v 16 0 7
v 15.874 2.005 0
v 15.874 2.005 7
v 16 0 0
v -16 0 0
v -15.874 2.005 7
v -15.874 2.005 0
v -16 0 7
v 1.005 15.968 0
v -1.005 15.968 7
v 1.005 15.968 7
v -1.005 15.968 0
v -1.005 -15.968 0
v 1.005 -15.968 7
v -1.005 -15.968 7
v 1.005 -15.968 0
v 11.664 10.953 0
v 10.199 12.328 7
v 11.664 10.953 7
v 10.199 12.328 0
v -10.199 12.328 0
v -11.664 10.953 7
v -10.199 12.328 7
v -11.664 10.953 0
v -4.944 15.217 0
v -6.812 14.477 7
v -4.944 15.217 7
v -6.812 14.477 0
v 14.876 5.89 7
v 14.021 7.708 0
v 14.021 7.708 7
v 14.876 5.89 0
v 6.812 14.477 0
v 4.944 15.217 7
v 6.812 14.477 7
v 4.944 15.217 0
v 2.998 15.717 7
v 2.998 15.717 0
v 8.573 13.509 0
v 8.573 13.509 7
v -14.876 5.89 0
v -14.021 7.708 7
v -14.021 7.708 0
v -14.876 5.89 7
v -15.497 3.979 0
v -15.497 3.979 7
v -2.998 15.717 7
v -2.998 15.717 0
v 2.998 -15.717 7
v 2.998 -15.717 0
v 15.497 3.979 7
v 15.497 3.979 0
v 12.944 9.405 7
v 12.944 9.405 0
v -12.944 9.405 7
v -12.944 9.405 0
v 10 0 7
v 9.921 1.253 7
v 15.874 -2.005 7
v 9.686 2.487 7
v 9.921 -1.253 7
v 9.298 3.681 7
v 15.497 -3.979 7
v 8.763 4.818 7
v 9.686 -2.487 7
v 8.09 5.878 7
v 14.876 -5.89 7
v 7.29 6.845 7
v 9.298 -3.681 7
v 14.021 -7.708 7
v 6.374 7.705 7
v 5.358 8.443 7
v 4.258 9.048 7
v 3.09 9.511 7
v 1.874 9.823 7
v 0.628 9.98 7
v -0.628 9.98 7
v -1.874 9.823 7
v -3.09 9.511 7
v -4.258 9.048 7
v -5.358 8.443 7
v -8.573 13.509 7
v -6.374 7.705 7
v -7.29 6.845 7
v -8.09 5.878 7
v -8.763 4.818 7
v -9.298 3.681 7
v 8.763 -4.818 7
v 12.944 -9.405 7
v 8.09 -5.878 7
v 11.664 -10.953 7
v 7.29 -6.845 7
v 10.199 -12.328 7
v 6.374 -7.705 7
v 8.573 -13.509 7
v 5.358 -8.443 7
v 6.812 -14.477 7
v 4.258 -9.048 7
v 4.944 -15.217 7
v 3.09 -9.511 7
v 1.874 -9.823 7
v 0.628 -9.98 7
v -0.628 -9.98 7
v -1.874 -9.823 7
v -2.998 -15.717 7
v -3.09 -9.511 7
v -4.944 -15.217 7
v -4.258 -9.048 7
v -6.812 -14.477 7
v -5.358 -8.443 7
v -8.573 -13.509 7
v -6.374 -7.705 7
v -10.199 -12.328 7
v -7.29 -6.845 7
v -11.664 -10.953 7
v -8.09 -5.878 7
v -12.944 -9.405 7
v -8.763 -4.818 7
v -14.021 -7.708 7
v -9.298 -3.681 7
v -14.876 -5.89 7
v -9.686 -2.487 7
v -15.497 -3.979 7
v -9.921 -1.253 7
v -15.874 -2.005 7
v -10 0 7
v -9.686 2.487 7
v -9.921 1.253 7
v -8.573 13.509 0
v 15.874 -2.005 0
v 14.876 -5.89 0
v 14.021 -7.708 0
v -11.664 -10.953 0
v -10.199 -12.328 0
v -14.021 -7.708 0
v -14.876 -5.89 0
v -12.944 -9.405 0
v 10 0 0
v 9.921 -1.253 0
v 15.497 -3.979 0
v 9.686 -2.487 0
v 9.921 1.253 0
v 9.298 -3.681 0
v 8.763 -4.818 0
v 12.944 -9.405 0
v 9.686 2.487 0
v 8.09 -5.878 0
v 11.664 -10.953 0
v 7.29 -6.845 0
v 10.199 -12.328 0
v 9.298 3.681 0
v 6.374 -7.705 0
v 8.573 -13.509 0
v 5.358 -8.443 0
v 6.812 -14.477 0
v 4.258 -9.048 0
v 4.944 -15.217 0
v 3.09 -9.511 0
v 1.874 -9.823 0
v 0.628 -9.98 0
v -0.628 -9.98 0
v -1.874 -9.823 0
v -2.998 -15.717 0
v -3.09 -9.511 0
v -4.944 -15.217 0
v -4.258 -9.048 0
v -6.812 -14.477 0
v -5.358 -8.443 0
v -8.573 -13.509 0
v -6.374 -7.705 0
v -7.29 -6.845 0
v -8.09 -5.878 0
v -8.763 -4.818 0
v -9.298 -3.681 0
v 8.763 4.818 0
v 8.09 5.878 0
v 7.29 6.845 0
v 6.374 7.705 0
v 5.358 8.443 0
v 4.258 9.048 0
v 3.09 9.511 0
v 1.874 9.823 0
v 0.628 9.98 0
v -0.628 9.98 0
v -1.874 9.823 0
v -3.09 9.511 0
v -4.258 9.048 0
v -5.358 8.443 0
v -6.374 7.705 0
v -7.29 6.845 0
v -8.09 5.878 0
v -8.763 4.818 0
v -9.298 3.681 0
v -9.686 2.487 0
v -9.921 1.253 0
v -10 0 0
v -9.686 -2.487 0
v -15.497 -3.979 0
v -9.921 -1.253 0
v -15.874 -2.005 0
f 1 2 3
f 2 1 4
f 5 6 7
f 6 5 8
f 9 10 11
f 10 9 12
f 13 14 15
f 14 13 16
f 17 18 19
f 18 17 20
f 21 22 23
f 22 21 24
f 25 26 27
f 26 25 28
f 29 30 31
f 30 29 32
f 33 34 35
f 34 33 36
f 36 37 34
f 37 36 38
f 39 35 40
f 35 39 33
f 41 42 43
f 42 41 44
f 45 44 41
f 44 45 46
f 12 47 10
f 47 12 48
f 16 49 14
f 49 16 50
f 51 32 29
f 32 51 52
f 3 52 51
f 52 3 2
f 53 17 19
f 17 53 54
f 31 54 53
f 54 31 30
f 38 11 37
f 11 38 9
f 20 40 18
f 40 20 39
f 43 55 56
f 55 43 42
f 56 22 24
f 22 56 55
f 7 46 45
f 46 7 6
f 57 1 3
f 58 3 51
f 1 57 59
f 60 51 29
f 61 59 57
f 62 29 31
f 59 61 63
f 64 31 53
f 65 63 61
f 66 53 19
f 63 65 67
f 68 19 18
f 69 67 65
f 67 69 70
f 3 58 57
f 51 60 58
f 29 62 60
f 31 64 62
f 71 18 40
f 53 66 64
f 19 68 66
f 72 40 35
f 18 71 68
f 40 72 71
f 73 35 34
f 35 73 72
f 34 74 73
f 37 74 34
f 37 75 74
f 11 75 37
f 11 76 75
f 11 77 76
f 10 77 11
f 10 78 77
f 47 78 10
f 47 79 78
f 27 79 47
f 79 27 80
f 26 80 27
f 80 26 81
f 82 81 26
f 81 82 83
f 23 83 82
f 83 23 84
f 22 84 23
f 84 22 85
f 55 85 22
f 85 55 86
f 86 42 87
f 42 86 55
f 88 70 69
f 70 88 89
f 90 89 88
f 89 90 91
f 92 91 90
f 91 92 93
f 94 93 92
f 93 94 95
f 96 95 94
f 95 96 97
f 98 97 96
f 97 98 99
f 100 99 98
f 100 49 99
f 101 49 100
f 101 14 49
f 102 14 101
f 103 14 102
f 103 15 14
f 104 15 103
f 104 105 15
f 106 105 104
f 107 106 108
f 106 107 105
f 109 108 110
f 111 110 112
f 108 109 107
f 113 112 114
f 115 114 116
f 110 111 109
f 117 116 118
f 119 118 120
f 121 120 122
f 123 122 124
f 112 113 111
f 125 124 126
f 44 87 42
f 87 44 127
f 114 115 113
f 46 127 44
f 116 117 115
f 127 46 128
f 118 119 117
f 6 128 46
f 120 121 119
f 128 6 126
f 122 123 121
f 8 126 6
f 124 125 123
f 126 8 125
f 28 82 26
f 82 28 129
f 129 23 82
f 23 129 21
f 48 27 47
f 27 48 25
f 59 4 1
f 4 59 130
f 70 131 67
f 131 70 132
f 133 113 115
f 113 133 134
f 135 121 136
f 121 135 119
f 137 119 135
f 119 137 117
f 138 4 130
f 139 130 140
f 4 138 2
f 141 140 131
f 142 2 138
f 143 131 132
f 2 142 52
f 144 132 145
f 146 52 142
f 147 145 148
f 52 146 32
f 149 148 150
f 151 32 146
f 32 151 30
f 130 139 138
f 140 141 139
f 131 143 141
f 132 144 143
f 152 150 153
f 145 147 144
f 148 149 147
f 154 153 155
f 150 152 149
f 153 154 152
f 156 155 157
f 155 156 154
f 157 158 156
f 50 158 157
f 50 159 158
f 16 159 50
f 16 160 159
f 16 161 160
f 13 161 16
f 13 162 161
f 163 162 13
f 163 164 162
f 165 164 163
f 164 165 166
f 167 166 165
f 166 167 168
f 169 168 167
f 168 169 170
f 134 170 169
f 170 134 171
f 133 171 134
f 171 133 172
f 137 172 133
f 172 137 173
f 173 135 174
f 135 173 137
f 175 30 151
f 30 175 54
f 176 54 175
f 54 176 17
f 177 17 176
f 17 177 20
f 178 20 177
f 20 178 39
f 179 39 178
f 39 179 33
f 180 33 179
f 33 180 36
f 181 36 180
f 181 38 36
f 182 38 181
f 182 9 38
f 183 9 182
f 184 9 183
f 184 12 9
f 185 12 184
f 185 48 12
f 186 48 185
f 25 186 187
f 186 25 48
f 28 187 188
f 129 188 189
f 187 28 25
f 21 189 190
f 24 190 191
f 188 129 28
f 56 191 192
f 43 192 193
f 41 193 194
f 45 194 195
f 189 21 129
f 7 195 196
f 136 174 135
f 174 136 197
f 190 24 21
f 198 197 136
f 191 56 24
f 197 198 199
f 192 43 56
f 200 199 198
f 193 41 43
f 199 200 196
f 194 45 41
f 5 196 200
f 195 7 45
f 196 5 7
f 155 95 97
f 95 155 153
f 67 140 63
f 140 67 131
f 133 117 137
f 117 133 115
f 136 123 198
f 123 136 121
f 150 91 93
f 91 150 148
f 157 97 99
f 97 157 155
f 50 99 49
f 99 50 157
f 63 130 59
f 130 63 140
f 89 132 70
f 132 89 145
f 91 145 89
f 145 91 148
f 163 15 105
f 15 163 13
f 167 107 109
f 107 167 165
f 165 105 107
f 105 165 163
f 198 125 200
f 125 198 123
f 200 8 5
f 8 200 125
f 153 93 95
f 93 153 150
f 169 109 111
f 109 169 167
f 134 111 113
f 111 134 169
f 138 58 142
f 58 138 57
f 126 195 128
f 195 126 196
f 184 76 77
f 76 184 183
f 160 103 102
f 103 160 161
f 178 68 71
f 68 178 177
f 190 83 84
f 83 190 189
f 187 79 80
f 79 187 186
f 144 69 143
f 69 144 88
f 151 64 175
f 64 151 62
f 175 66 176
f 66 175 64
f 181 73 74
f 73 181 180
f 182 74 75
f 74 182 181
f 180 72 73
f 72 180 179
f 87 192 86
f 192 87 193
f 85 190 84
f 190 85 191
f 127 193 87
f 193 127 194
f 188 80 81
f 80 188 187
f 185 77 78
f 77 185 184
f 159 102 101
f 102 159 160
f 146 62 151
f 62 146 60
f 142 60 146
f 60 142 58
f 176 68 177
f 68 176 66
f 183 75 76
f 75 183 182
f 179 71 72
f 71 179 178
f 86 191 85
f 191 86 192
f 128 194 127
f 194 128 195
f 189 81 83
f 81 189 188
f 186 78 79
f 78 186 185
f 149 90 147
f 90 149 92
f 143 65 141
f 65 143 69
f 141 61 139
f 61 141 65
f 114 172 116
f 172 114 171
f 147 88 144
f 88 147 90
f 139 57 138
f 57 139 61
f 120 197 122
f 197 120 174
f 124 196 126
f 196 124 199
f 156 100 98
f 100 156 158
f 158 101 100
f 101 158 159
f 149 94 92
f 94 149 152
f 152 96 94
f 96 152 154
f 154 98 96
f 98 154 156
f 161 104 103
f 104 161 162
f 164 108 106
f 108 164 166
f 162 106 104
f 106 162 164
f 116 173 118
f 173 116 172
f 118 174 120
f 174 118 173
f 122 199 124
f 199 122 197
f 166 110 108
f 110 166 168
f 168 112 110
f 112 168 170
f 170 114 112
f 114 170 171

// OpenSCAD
$fn = 50;


difference() {
	union() {
		cylinder(h = 7, r = 16.0000000000);
	}
	union() {
		cylinder(h = 7, r = 10.0000000000);
	}
}
